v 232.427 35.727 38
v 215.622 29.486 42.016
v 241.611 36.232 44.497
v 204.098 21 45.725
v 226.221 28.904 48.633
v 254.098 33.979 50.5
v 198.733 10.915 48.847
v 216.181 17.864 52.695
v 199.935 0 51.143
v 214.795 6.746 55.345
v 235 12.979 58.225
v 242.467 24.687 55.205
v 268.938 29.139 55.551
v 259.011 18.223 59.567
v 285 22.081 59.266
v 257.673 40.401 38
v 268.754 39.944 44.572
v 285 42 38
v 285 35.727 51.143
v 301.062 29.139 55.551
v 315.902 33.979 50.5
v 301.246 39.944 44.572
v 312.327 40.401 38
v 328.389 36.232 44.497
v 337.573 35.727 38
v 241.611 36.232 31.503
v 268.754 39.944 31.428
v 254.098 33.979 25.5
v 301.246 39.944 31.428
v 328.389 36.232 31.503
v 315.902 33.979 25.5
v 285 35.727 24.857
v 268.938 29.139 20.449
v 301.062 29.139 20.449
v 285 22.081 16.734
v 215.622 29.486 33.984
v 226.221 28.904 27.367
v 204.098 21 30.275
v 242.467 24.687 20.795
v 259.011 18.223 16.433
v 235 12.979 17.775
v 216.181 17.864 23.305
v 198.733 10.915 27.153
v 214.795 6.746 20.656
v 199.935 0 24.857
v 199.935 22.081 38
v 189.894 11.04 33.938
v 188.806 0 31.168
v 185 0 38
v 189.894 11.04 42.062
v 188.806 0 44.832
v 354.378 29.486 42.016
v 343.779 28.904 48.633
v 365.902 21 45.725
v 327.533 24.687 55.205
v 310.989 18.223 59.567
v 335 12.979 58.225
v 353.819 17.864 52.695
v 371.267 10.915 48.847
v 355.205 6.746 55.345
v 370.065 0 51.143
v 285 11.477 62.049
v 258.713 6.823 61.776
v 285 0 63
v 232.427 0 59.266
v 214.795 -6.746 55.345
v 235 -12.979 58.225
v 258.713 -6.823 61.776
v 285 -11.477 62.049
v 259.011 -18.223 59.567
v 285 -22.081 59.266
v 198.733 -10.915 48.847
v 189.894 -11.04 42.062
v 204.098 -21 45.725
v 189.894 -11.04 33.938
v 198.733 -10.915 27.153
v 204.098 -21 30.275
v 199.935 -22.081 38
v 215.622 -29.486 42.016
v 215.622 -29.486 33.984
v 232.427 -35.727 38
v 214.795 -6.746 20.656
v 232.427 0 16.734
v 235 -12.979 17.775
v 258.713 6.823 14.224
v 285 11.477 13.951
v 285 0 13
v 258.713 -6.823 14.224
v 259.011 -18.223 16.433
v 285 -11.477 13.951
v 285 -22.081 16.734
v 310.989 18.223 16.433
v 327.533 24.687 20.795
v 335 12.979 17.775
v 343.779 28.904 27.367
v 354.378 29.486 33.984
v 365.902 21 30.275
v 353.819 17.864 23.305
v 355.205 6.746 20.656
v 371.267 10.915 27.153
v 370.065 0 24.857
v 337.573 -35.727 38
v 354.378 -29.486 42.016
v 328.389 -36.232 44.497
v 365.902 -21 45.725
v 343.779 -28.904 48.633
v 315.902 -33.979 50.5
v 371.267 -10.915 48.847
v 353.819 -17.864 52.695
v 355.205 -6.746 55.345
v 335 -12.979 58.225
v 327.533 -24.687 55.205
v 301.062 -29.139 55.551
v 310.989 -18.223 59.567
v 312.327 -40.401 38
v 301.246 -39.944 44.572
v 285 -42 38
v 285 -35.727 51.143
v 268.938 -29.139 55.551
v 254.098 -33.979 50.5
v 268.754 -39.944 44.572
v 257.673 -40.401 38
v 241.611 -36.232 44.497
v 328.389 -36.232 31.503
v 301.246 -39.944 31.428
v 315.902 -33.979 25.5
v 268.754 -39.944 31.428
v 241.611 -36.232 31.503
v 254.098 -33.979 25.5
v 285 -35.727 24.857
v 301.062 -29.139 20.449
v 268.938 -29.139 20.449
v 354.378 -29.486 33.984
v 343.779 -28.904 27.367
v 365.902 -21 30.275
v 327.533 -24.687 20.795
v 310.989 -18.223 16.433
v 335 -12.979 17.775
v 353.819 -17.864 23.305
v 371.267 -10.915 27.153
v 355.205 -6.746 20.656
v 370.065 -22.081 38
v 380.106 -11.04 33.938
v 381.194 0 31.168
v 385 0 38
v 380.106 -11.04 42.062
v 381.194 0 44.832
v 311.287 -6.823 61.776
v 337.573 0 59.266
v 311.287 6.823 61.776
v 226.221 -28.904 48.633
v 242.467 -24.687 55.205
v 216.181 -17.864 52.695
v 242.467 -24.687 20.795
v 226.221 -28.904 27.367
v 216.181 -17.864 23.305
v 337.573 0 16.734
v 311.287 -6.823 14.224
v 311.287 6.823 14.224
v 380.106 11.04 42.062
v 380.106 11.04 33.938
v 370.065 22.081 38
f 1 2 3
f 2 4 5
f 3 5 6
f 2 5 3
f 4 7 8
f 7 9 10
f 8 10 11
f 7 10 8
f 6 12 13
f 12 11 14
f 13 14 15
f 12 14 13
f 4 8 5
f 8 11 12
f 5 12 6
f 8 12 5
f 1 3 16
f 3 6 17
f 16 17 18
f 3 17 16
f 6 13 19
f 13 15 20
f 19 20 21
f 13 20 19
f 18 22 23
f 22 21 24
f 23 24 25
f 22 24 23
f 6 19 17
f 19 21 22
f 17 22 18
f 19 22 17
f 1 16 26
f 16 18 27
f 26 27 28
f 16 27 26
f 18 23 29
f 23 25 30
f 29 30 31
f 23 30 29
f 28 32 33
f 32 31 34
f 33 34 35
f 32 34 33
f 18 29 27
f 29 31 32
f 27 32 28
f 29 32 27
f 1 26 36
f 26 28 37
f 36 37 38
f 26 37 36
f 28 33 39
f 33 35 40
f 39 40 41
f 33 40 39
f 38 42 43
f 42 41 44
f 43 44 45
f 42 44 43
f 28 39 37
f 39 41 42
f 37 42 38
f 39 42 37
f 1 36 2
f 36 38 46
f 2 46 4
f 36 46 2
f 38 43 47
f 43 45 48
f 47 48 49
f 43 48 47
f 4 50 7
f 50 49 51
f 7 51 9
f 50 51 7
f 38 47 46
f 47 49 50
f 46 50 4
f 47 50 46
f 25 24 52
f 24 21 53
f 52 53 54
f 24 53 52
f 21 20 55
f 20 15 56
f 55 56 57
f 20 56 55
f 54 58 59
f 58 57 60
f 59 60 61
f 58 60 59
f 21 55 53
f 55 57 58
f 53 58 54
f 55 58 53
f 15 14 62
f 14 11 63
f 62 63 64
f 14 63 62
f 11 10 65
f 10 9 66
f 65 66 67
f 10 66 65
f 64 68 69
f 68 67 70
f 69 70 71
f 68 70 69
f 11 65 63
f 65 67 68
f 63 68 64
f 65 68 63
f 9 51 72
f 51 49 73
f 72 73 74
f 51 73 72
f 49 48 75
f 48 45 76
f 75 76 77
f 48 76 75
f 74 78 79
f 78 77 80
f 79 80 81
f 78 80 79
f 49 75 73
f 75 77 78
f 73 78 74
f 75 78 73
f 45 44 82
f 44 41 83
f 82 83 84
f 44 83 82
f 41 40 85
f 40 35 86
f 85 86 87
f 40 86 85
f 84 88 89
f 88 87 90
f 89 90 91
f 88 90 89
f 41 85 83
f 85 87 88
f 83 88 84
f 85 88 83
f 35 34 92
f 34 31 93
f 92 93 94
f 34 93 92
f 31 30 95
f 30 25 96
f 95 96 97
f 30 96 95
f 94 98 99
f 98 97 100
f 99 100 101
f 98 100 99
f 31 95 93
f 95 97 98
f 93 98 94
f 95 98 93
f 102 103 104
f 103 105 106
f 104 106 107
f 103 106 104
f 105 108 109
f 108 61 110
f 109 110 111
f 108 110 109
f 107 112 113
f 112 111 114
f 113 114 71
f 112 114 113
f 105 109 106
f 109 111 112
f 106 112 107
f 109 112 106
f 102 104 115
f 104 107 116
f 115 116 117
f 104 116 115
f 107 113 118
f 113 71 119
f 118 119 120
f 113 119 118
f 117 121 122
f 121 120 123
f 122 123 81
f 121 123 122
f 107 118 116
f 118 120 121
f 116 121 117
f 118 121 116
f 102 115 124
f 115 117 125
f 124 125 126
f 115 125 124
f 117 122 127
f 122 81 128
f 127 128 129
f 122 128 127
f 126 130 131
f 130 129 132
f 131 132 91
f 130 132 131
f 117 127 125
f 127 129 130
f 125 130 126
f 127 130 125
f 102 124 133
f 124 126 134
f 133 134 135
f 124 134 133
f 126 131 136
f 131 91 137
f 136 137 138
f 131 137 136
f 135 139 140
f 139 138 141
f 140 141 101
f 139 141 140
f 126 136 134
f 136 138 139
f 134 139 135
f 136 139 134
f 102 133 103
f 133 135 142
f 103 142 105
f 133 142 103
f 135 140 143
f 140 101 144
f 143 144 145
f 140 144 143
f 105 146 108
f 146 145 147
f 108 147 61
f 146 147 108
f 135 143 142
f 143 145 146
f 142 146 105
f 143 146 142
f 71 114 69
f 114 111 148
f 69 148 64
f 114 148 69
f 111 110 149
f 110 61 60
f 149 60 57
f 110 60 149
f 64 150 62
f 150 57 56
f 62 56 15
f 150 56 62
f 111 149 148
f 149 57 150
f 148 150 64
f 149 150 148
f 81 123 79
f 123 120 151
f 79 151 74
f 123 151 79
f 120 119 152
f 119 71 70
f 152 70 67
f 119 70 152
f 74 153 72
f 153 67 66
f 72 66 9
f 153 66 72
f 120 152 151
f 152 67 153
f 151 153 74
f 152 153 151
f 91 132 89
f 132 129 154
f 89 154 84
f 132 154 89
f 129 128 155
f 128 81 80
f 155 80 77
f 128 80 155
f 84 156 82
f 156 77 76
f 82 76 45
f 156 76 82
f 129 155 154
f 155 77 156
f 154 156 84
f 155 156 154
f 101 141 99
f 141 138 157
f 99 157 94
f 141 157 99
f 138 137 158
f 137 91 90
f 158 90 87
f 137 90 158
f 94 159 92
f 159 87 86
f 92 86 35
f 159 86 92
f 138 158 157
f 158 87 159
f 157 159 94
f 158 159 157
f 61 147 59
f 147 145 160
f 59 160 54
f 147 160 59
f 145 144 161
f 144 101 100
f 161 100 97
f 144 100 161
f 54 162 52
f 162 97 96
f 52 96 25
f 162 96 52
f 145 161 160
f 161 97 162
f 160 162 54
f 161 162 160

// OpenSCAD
polyhedron(points=[[232.426889, 35.727334, 38.0], [337.573111, 35.727334, 38.0], [232.426889, -35.727334, 38.0], [337.573111, -35.727334, 38.0], [285.0, -22.080707, 59.26627], [285.0, 22.080707, 59.26627], [285.0, -22.080707, 16.73373], [285.0, 22.080707, 16.73373], [370.065081, 0.0, 24.856722], [370.065081, 0.0, 51.143278], [199.934919, 0.0, 24.856722], [199.934919, 0.0, 51.143278], [285.0, 42.0, 38.0], [285.0, -42.0, 38.0], [254.098301, -33.978714, 50.5], [315.901699, -33.978714, 50.5], [254.098301, 33.978714, 50.5], [315.901699, 33.978714, 50.5], [285.0, 0.0, 63.0], [254.098301, -33.978714, 25.5], [315.901699, -33.978714, 25.5], [254.098301, 33.978714, 25.5], [315.901699, 33.978714, 25.5], [285.0, 0.0, 13.0], [365.901699, 21.0, 30.274575], [365.901699, -21.0, 30.274575], [335.0, -12.978714, 17.774575], [335.0, 12.978714, 17.774575], [365.901699, 21.0, 45.725425], [365.901699, -21.0, 45.725425], [335.0, -12.978714, 58.225425], [335.0, 12.978714, 58.225425], [385.0, 0.0, 38.0], [204.098301, 21.0, 30.274575], [204.098301, -21.0, 30.274575], [235.0, -12.978714, 17.774575], [235.0, 12.978714, 17.774575], [204.098301, 21.0, 45.725425], [204.098301, -21.0, 45.725425], [235.0, -12.978714, 58.225425], [235.0, 12.978714, 58.225425], [185.0, 0.0, 38.0], [257.673347, 40.401411, 38.0], [312.326653, 40.401411, 38.0], [257.673347, -40.401411, 38.0], [312.326653, -40.401411, 38.0], [241.611144, -36.232076, 44.497298], [268.937796, -29.13878, 55.551161], [268.754015, -39.944374, 44.571639], [328.388856, -36.232076, 44.497298], [301.062204, -29.13878, 55.551161], [301.245985, -39.944374, 44.571639], [285.0, -35.727334, 51.143278], [241.611144, 36.232076, 44.497298], [268.937796, 29.13878, 55.551161], [268.754015, 39.944374, 44.571639], [328.388856, 36.232076, 44.497298], [301.062204, 29.13878, 55.551161], [301.245985, 39.944374, 44.571639], [285.0, 35.727334, 51.143278], [285.0, -11.477194, 62.048459], [285.0, 11.477194, 62.048459], [241.611144, -36.232076, 31.502702], [268.937796, -29.13878, 20.448839], [268.754015, -39.944374, 31.428361], [328.388856, -36.232076, 31.502702], [301.062204, -29.13878, 20.448839], [301.245985, -39.944374, 31.428361], [285.0, -35.727334, 24.856722], [241.611144, 36.232076, 31.502702], [268.937796, 29.13878, 20.448839], [268.754015, 39.944374, 31.428361], [328.388856, 36.232076, 31.502702], [301.062204, 29.13878, 20.448839], [301.245985, 39.944374, 31.428361], [285.0, 35.727334, 24.856722], [285.0, -11.477194, 13.951541], [285.0, 11.477194, 13.951541], [354.378048, 29.485951, 33.984449], [371.266848, 10.91546, 27.152786], [343.778525, 28.90402, 27.366865], [354.378048, -29.485951, 33.984449], [371.266848, -10.91546, 27.152786], [343.778525, -28.90402, 27.366865], [310.989191, -18.22332, 16.433288], [355.204644, -6.746125, 20.655488], [327.53254, -24.686981, 20.795226], [311.286556, -6.823314, 14.223587], [353.819096, -17.863667, 23.305369], [310.989191, 18.22332, 16.433288], [355.204644, 6.746125, 20.655488], [327.53254, 24.686981, 20.795226], [311.286556, 6.823314, 14.223587], [353.819096, 17.863667, 23.305369], [337.573111, 0.0, 16.73373], [354.378048, 29.485951, 42.015551], [371.266848, 10.91546, 48.847214], [343.778525, 28.90402, 48.633135], [370.065081, 22.080707, 38.0], [354.378048, -29.485951, 42.015551], [371.266848, -10.91546, 48.847214], [343.778525, -28.90402, 48.633135], [370.065081, -22.080707, 38.0], [310.989191, -18.22332, 59.566712], [355.204644, -6.746125, 55.344512], [327.53254, -24.686981, 55.204774], [311.286556, -6.823314, 61.776413], [353.819096, -17.863667, 52.694631], [310.989191, 18.22332, 59.566712], [355.204644, 6.746125, 55.344512], [327.53254, 24.686981, 55.204774], [311.286556, 6.823314, 61.776413], [353.819096, 17.863667, 52.694631], [337.573111, 0.0, 59.26627], [381.193836, 0.0, 31.168337], [381.193836, 0.0, 44.831663], [380.105652, 11.040353, 33.938504], [380.105652, -11.040353, 33.938504], [380.105652, 11.040353, 42.061496], [380.105652, -11.040353, 42.061496], [215.621952, 29.485951, 33.984449], [198.733152, 10.91546, 27.152786], [226.221475, 28.90402, 27.366865], [215.621952, -29.485951, 33.984449], [198.733152, -10.91546, 27.152786], [226.221475, -28.90402, 27.366865], [259.010809, -18.22332, 16.433288], [214.795356, -6.746125, 20.655488], [242.46746, -24.686981, 20.795226], [258.713444, -6.823314, 14.223587], [216.180904, -17.863667, 23.305369], [259.010809, 18.22332, 16.433288], [214.795356, 6.746125, 20.655488], [242.46746, 24.686981, 20.795226], [258.713444, 6.823314, 14.223587], [216.180904, 17.863667, 23.305369], [232.426889, 0.0, 16.73373], [215.621952, 29.485951, 42.015551], [198.733152, 10.91546, 48.847214], [226.221475, 28.90402, 48.633135], [199.934919, 22.080707, 38.0], [215.621952, -29.485951, 42.015551], [198.733152, -10.91546, 48.847214], [226.221475, -28.90402, 48.633135], [199.934919, -22.080707, 38.0], [259.010809, -18.22332, 59.566712], [214.795356, -6.746125, 55.344512], [242.46746, -24.686981, 55.204774], [258.713444, -6.823314, 61.776413], [216.180904, -17.863667, 52.694631], [259.010809, 18.22332, 59.566712], [214.795356, 6.746125, 55.344512], [242.46746, 24.686981, 55.204774], [258.713444, 6.823314, 61.776413], [216.180904, 17.863667, 52.694631], [232.426889, 0.0, 59.26627], [188.806164, 0.0, 31.168337], [188.806164, 0.0, 44.831663], [189.894348, 11.040353, 33.938504], [189.894348, -11.040353, 33.938504], [189.894348, 11.040353, 42.061496], [189.894348, -11.040353, 42.061496]], faces=[[0, 137, 53], [137, 37, 139], [53, 139, 16], [137, 139, 53], [37, 138, 154], [138, 11, 151], [154, 151, 40], [138, 151, 154], [16, 152, 54], [152, 40, 150], [54, 150, 5], [152, 150, 54], [37, 154, 139], [154, 40, 152], [139, 152, 16], [154, 152, 139], [0, 53, 42], [53, 16, 55], [42, 55, 12], [53, 55, 42], [16, 54, 59], [54, 5, 57], [59, 57, 17], [54, 57, 59], [12, 58, 43], [58, 17, 56], [43, 56, 1], [58, 56, 43], [16, 59, 55], [59, 17, 58], [55, 58, 12], [59, 58, 55], [0, 42, 69], [42, 12, 71], [69, 71, 21], [42, 71, 69], [12, 43, 74], [43, 1, 72], [74, 72, 22], [43, 72, 74], [21, 75, 70], [75, 22, 73], [70, 73, 7], [75, 73, 70], [12, 74, 71], [74, 22, 75], [71, 75, 21], [74, 75, 71], [0, 69, 120], [69, 21, 122], [120, 122, 33], [69, 122, 120], [21, 70, 133], [70, 7, 131], [133, 131, 36], [70, 131, 133], [33, 135, 121], [135, 36, 132], [121, 132, 10], [135, 132, 121], [21, 133, 122], [133, 36, 135], [122, 135, 33], [133, 135, 122], [0, 120, 137], [120, 33, 140], [137, 140, 37], [120, 140, 137], [33, 121, 158], [121, 10, 156], [158, 156, 41], [121, 156, 158], [37, 160, 138], [160, 41, 157], [138, 157, 11], [160, 157, 138], [33, 158, 140], [158, 41, 160], [140, 160, 37], [158, 160, 140], [1, 56, 95], [56, 17, 97], [95, 97, 28], [56, 97, 95], [17, 57, 110], [57, 5, 108], [110, 108, 31], [57, 108, 110], [28, 112, 96], [112, 31, 109], [96, 109, 9], [112, 109, 96], [17, 110, 97], [110, 31, 112], [97, 112, 28], [110, 112, 97], [5, 150, 61], [150, 40, 153], [61, 153, 18], [150, 153, 61], [40, 151, 155], [151, 11, 146], [155, 146, 39], [151, 146, 155], [18, 148, 60], [148, 39, 145], [60, 145, 4], [148, 145, 60], [40, 155, 153], [155, 39, 148], [153, 148, 18], [155, 148, 153], [11, 157, 142], [157, 41, 161], [142, 161, 38], [157, 161, 142], [41, 156, 159], [156, 10, 124], [159, 124, 34], [156, 124, 159], [38, 144, 141], [144, 34, 123], [141, 123, 2], [144, 123, 141], [41, 159, 161], [159, 34, 144], [161, 144, 38], [159, 144, 161], [10, 132, 127], [132, 36, 136], [127, 136, 35], [132, 136, 127], [36, 131, 134], [131, 7, 77], [134, 77, 23], [131, 77, 134], [35, 129, 126], [129, 23, 76], [126, 76, 6], [129, 76, 126], [36, 134, 136], [134, 23, 129], [136, 129, 35], [134, 129, 136], [7, 73, 89], [73, 22, 91], [89, 91, 27], [73, 91, 89], [22, 72, 80], [72, 1, 78], [80, 78, 24], [72, 78, 80], [27, 93, 90], [93, 24, 79], [90, 79, 8], [93, 79, 90], [22, 80, 91], [80, 24, 93], [91, 93, 27], [80, 93, 91], [3, 99, 49], [99, 29, 101], [49, 101, 15], [99, 101, 49], [29, 100, 107], [100, 9, 104], [107, 104, 30], [100, 104, 107], [15, 105, 50], [105, 30, 103], [50, 103, 4], [105, 103, 50], [29, 107, 101], [107, 30, 105], [101, 105, 15], [107, 105, 101], [3, 49, 45], [49, 15, 51], [45, 51, 13], [49, 51, 45], [15, 50, 52], [50, 4, 47], [52, 47, 14], [50, 47, 52], [13, 48, 44], [48, 14, 46], [44, 46, 2], [48, 46, 44], [15, 52, 51], [52, 14, 48], [51, 48, 13], [52, 48, 51], [3, 45, 65], [45, 13, 67], [65, 67, 20], [45, 67, 65], [13, 44, 64], [44, 2, 62], [64, 62, 19], [44, 62, 64], [20, 68, 66], [68, 19, 63], [66, 63, 6], [68, 63, 66], [13, 64, 67], [64, 19, 68], [67, 68, 20], [64, 68, 67], [3, 65, 81], [65, 20, 83], [81, 83, 25], [65, 83, 81], [20, 66, 86], [66, 6, 84], [86, 84, 26], [66, 84, 86], [25, 88, 82], [88, 26, 85], [82, 85, 8], [88, 85, 82], [20, 86, 83], [86, 26, 88], [83, 88, 25], [86, 88, 83], [3, 81, 99], [81, 25, 102], [99, 102, 29], [81, 102, 99], [25, 82, 117], [82, 8, 114], [117, 114, 32], [82, 114, 117], [29, 119, 100], [119, 32, 115], [100, 115, 9], [119, 115, 100], [25, 117, 102], [117, 32, 119], [102, 119, 29], [117, 119, 102], [4, 103, 60], [103, 30, 106], [60, 106, 18], [103, 106, 60], [30, 104, 113], [104, 9, 109], [113, 109, 31], [104, 109, 113], [18, 111, 61], [111, 31, 108], [61, 108, 5], [111, 108, 61], [30, 113, 106], [113, 31, 111], [106, 111, 18], [113, 111, 106], [2, 46, 141], [46, 14, 143], [141, 143, 38], [46, 143, 141], [14, 47, 147], [47, 4, 145], [147, 145, 39], [47, 145, 147], [38, 149, 142], [149, 39, 146], [142, 146, 11], [149, 146, 142], [14, 147, 143], [147, 39, 149], [143, 149, 38], [147, 149, 143], [6, 63, 126], [63, 19, 128], [126, 128, 35], [63, 128, 126], [19, 62, 125], [62, 2, 123], [125, 123, 34], [62, 123, 125], [35, 130, 127], [130, 34, 124], [127, 124, 10], [130, 124, 127], [19, 125, 128], [125, 34, 130], [128, 130, 35], [125, 130, 128], [8, 85, 90], [85, 26, 94], [90, 94, 27], [85, 94, 90], [26, 84, 87], [84, 6, 76], [87, 76, 23], [84, 76, 87], [27, 92, 89], [92, 23, 77], [89, 77, 7], [92, 77, 89], [26, 87, 94], [87, 23, 92], [94, 92, 27], [87, 92, 94], [9, 115, 96], [115, 32, 118], [96, 118, 28], [115, 118, 96], [32, 114, 116], [114, 8, 79], [116, 79, 24], [114, 79, 116], [28, 98, 95], [98, 24, 78], [95, 78, 1], [98, 78, 95], [32, 116, 118], [116, 24, 98], [118, 98, 28], [116, 98, 118]], convexity=20);
